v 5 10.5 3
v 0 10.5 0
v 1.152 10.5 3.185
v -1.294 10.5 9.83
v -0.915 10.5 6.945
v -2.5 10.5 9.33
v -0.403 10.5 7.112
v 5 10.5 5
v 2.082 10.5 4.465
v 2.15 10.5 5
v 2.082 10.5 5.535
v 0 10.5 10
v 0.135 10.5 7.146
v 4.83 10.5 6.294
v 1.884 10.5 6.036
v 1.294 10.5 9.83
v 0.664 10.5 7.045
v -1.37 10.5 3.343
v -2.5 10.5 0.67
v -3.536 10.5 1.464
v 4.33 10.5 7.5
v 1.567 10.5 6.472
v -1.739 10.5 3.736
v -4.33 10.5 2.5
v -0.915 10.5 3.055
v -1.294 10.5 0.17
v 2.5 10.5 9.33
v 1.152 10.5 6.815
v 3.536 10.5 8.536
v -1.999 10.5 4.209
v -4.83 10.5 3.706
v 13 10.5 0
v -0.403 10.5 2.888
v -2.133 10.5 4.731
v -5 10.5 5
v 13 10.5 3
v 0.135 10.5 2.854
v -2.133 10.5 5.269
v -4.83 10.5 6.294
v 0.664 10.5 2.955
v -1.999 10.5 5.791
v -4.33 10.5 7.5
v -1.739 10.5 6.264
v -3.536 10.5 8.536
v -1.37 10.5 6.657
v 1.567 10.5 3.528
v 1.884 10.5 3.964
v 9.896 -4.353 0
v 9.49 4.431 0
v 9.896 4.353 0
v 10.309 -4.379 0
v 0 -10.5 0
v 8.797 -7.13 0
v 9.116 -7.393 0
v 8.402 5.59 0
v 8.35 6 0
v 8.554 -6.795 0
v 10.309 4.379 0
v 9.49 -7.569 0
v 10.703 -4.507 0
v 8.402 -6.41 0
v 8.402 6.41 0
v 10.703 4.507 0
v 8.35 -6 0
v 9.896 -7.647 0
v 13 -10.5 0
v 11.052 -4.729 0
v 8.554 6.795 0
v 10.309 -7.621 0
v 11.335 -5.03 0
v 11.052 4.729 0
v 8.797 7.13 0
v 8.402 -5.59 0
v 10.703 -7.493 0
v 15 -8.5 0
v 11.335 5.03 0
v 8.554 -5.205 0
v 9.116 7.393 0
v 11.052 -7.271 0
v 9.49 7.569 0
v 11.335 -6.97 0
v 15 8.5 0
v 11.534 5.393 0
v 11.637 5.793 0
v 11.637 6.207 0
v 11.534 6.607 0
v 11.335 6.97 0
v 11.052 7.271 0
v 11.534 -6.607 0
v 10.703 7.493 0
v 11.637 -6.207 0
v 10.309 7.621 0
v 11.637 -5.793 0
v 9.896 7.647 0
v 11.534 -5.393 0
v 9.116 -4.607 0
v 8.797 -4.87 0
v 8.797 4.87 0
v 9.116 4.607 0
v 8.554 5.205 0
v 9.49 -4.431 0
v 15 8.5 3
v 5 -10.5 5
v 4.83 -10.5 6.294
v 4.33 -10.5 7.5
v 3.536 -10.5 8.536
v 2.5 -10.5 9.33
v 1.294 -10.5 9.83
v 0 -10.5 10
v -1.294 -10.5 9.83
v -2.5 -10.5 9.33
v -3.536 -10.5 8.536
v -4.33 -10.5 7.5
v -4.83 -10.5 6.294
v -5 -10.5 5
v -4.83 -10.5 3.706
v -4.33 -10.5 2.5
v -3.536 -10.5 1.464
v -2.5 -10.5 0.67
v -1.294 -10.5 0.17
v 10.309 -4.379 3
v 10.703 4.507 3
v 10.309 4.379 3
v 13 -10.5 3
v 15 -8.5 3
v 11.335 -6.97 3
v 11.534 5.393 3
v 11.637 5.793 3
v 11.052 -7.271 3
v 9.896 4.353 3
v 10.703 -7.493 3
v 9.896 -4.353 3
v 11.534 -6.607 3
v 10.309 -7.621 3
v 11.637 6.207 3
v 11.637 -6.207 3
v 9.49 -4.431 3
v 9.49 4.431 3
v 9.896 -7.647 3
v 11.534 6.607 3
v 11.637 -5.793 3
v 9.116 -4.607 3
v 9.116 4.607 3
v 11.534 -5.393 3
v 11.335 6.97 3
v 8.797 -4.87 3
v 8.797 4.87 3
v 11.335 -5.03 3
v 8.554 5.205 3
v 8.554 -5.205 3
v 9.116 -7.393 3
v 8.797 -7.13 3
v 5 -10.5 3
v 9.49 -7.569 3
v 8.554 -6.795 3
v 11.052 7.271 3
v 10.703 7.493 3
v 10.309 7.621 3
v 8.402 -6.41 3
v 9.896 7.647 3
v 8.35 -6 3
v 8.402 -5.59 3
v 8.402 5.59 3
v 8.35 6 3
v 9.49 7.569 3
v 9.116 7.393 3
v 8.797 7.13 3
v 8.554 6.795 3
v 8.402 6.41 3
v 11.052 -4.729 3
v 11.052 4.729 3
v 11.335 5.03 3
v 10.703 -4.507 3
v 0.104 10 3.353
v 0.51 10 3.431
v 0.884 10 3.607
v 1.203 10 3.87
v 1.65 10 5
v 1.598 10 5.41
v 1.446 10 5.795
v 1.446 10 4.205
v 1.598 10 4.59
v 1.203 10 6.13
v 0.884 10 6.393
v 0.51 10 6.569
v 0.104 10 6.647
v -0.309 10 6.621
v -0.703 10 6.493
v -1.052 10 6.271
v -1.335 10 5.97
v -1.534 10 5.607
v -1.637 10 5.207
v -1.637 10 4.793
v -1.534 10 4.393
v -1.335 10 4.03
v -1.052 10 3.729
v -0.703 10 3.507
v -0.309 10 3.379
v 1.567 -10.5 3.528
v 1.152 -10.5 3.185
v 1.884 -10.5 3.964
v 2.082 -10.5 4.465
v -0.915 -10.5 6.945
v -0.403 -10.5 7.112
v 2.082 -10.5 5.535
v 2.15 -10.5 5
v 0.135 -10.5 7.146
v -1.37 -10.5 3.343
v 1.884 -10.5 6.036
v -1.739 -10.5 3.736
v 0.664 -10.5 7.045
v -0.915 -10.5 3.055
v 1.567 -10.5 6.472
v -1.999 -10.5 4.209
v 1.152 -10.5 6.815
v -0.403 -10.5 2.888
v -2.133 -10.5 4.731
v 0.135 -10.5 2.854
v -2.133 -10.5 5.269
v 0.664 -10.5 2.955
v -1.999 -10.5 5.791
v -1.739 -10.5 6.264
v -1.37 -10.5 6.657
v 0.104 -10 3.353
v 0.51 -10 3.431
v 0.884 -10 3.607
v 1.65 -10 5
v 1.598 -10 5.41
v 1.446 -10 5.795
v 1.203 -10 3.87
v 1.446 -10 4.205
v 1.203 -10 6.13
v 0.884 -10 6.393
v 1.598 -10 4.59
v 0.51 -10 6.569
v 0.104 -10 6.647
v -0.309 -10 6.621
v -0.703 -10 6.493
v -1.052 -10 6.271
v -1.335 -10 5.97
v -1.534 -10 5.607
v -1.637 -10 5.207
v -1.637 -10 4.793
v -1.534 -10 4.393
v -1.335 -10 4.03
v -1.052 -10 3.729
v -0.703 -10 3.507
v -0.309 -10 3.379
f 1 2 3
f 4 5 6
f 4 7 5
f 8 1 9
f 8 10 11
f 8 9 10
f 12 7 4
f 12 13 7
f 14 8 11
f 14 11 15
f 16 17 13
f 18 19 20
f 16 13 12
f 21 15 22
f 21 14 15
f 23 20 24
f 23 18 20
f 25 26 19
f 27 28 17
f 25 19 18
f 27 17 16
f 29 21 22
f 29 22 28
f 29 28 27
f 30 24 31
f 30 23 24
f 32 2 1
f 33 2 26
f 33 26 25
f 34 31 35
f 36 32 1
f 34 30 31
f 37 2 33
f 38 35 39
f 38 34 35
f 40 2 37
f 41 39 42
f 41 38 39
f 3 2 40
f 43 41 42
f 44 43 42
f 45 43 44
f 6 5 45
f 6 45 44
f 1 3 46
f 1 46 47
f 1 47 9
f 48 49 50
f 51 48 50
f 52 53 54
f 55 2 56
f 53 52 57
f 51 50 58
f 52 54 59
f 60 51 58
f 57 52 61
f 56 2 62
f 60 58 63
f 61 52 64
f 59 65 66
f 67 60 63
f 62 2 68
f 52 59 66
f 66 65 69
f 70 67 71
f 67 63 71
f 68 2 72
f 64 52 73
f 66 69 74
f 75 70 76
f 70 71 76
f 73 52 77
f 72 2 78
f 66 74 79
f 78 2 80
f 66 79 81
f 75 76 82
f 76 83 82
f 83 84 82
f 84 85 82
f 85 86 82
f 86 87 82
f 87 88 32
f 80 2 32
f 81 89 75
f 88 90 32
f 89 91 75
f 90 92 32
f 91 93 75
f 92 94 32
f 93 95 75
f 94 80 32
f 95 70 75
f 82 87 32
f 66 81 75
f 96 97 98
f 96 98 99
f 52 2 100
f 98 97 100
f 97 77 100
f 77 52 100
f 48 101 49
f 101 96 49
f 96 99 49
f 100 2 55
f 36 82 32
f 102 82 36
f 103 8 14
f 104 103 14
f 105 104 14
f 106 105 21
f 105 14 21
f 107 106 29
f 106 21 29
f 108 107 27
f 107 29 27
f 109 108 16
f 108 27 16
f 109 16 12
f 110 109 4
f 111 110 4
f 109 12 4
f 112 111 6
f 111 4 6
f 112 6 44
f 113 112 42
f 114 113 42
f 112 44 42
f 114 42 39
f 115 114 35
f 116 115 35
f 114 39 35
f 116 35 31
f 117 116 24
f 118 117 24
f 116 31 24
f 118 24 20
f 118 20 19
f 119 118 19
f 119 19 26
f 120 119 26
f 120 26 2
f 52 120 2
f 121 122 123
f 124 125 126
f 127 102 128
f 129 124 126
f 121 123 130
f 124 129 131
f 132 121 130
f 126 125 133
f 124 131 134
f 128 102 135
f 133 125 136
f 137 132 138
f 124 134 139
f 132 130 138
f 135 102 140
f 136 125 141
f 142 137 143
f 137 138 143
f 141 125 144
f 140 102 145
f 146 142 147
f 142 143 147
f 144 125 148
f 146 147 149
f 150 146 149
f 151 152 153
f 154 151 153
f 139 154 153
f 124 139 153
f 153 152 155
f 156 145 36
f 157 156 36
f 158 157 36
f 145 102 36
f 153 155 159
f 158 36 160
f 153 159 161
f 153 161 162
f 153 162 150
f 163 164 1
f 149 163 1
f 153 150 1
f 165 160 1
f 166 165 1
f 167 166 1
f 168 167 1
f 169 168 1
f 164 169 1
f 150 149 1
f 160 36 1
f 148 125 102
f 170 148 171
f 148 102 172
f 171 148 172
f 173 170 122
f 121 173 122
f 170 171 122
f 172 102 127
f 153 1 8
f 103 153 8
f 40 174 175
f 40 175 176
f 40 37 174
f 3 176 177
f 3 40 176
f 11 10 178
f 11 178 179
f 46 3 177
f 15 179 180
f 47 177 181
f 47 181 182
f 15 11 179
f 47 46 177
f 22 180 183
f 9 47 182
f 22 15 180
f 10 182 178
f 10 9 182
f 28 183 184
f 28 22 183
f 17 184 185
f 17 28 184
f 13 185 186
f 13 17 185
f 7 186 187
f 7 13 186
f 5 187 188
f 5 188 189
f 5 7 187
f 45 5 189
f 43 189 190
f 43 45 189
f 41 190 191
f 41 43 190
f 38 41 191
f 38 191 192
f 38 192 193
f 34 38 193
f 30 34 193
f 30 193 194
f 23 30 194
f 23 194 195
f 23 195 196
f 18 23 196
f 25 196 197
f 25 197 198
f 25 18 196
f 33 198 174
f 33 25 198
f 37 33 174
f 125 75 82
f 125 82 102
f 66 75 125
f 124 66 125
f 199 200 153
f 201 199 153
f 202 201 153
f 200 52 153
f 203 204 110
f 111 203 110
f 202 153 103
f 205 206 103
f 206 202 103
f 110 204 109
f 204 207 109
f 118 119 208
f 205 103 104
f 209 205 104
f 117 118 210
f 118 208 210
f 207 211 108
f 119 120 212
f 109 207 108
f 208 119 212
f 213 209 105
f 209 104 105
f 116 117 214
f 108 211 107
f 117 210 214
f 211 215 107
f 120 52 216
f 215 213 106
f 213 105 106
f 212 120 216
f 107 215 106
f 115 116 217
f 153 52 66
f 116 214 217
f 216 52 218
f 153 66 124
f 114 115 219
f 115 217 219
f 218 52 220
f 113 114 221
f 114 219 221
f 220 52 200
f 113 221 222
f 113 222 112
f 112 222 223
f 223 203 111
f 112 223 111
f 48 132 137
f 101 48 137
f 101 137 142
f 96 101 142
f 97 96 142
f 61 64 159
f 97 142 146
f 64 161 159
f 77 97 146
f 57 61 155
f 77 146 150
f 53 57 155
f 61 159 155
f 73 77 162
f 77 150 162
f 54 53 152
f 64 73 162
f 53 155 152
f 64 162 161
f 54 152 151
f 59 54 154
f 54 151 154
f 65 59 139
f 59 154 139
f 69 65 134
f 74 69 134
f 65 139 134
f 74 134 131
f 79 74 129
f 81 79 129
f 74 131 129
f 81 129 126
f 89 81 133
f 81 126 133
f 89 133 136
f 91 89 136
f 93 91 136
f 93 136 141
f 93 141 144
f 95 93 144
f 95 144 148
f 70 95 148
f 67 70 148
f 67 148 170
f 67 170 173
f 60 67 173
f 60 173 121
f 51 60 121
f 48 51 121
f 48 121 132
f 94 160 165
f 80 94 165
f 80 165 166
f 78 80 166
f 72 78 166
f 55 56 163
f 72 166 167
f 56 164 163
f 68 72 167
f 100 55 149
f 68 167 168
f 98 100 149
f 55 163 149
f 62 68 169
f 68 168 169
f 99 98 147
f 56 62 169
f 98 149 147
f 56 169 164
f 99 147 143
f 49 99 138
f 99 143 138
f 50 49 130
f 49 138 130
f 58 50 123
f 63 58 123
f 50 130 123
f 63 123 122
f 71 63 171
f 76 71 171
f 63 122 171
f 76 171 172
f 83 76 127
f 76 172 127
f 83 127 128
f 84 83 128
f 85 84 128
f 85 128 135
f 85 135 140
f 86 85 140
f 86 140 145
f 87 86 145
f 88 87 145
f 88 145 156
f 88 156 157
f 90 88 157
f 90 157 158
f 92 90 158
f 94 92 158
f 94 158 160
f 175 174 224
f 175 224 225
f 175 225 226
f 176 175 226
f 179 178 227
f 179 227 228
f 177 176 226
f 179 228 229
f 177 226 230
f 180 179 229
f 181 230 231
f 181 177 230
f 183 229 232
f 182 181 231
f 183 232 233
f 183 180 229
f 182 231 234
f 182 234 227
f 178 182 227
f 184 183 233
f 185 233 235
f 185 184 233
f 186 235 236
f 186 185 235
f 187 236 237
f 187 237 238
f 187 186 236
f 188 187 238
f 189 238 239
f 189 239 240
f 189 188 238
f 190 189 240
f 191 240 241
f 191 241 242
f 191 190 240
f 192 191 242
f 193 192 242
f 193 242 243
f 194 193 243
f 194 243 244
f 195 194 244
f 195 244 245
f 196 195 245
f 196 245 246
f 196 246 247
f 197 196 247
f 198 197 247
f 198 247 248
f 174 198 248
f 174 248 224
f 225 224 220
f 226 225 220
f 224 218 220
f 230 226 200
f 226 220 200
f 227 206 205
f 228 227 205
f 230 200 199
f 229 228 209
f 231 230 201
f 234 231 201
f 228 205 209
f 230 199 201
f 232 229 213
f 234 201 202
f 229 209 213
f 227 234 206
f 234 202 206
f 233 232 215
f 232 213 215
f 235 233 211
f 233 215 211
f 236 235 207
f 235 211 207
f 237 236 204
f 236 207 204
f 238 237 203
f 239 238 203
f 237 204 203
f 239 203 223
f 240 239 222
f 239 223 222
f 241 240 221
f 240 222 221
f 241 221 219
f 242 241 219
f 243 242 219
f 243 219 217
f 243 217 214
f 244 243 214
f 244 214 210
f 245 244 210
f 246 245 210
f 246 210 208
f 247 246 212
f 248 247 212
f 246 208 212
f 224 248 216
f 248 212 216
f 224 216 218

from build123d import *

# Parameters (mm, degrees)
SKETCH_R        = 1.65
PAD_DEPTH       = 10.5
CHAMFER_SIZE    = 0.5
CHAMFER001_SIZE = 2
SKETCH001_R     = 1.65
POCKET_DEPTH    = 3.001


with BuildPart() as part:
    # Sketch → Pad (new body, symmetric)
    with BuildSketch(Plane.XZ):
        with BuildLine():
            ThreePointArc((5, 4.999972), (-3.535524, 8.535544), (0, 0))
            Line((0, 0), (15, 0))
            Line((15, 0), (15, 3))
            Line((15, 3), (5, 3))
            Line((5, 3), (5, 4.999972))
        make_face()
        with Locations((0, 5)):
            Circle(SKETCH_R, mode=Mode.SUBTRACT)
    extrude(amount=PAD_DEPTH, both=True)

    # Chamfer
    chamfer_edges = [part.edges().sort_by_distance(p)[0] for p in [
        (-1.65, -10.5, 5),
        (-1.65, 10.5, 5),
    ]]
    chamfer(chamfer_edges, length=CHAMFER_SIZE)

    # Chamfer001
    chamfer001_edges = [part.edges().sort_by_distance(p)[0] for p in [
        (15, 10.5, 1.5),
        (15, -10.5, 1.5),
    ]]
    chamfer(chamfer001_edges, length=CHAMFER001_SIZE)

    # Sketch001 → Pocket (cut, through all)
    with BuildSketch(Plane(origin=(0, 0, 3), x_dir=(-1, 0, 0), z_dir=(0, 0, 1))):
        with Locations((-10, 6)):
            Circle(SKETCH001_R)
        with Locations((-10, -6)):
            Circle(SKETCH001_R)
    extrude(amount=-POCKET_DEPTH, mode=Mode.SUBTRACT)


solid = part.part
